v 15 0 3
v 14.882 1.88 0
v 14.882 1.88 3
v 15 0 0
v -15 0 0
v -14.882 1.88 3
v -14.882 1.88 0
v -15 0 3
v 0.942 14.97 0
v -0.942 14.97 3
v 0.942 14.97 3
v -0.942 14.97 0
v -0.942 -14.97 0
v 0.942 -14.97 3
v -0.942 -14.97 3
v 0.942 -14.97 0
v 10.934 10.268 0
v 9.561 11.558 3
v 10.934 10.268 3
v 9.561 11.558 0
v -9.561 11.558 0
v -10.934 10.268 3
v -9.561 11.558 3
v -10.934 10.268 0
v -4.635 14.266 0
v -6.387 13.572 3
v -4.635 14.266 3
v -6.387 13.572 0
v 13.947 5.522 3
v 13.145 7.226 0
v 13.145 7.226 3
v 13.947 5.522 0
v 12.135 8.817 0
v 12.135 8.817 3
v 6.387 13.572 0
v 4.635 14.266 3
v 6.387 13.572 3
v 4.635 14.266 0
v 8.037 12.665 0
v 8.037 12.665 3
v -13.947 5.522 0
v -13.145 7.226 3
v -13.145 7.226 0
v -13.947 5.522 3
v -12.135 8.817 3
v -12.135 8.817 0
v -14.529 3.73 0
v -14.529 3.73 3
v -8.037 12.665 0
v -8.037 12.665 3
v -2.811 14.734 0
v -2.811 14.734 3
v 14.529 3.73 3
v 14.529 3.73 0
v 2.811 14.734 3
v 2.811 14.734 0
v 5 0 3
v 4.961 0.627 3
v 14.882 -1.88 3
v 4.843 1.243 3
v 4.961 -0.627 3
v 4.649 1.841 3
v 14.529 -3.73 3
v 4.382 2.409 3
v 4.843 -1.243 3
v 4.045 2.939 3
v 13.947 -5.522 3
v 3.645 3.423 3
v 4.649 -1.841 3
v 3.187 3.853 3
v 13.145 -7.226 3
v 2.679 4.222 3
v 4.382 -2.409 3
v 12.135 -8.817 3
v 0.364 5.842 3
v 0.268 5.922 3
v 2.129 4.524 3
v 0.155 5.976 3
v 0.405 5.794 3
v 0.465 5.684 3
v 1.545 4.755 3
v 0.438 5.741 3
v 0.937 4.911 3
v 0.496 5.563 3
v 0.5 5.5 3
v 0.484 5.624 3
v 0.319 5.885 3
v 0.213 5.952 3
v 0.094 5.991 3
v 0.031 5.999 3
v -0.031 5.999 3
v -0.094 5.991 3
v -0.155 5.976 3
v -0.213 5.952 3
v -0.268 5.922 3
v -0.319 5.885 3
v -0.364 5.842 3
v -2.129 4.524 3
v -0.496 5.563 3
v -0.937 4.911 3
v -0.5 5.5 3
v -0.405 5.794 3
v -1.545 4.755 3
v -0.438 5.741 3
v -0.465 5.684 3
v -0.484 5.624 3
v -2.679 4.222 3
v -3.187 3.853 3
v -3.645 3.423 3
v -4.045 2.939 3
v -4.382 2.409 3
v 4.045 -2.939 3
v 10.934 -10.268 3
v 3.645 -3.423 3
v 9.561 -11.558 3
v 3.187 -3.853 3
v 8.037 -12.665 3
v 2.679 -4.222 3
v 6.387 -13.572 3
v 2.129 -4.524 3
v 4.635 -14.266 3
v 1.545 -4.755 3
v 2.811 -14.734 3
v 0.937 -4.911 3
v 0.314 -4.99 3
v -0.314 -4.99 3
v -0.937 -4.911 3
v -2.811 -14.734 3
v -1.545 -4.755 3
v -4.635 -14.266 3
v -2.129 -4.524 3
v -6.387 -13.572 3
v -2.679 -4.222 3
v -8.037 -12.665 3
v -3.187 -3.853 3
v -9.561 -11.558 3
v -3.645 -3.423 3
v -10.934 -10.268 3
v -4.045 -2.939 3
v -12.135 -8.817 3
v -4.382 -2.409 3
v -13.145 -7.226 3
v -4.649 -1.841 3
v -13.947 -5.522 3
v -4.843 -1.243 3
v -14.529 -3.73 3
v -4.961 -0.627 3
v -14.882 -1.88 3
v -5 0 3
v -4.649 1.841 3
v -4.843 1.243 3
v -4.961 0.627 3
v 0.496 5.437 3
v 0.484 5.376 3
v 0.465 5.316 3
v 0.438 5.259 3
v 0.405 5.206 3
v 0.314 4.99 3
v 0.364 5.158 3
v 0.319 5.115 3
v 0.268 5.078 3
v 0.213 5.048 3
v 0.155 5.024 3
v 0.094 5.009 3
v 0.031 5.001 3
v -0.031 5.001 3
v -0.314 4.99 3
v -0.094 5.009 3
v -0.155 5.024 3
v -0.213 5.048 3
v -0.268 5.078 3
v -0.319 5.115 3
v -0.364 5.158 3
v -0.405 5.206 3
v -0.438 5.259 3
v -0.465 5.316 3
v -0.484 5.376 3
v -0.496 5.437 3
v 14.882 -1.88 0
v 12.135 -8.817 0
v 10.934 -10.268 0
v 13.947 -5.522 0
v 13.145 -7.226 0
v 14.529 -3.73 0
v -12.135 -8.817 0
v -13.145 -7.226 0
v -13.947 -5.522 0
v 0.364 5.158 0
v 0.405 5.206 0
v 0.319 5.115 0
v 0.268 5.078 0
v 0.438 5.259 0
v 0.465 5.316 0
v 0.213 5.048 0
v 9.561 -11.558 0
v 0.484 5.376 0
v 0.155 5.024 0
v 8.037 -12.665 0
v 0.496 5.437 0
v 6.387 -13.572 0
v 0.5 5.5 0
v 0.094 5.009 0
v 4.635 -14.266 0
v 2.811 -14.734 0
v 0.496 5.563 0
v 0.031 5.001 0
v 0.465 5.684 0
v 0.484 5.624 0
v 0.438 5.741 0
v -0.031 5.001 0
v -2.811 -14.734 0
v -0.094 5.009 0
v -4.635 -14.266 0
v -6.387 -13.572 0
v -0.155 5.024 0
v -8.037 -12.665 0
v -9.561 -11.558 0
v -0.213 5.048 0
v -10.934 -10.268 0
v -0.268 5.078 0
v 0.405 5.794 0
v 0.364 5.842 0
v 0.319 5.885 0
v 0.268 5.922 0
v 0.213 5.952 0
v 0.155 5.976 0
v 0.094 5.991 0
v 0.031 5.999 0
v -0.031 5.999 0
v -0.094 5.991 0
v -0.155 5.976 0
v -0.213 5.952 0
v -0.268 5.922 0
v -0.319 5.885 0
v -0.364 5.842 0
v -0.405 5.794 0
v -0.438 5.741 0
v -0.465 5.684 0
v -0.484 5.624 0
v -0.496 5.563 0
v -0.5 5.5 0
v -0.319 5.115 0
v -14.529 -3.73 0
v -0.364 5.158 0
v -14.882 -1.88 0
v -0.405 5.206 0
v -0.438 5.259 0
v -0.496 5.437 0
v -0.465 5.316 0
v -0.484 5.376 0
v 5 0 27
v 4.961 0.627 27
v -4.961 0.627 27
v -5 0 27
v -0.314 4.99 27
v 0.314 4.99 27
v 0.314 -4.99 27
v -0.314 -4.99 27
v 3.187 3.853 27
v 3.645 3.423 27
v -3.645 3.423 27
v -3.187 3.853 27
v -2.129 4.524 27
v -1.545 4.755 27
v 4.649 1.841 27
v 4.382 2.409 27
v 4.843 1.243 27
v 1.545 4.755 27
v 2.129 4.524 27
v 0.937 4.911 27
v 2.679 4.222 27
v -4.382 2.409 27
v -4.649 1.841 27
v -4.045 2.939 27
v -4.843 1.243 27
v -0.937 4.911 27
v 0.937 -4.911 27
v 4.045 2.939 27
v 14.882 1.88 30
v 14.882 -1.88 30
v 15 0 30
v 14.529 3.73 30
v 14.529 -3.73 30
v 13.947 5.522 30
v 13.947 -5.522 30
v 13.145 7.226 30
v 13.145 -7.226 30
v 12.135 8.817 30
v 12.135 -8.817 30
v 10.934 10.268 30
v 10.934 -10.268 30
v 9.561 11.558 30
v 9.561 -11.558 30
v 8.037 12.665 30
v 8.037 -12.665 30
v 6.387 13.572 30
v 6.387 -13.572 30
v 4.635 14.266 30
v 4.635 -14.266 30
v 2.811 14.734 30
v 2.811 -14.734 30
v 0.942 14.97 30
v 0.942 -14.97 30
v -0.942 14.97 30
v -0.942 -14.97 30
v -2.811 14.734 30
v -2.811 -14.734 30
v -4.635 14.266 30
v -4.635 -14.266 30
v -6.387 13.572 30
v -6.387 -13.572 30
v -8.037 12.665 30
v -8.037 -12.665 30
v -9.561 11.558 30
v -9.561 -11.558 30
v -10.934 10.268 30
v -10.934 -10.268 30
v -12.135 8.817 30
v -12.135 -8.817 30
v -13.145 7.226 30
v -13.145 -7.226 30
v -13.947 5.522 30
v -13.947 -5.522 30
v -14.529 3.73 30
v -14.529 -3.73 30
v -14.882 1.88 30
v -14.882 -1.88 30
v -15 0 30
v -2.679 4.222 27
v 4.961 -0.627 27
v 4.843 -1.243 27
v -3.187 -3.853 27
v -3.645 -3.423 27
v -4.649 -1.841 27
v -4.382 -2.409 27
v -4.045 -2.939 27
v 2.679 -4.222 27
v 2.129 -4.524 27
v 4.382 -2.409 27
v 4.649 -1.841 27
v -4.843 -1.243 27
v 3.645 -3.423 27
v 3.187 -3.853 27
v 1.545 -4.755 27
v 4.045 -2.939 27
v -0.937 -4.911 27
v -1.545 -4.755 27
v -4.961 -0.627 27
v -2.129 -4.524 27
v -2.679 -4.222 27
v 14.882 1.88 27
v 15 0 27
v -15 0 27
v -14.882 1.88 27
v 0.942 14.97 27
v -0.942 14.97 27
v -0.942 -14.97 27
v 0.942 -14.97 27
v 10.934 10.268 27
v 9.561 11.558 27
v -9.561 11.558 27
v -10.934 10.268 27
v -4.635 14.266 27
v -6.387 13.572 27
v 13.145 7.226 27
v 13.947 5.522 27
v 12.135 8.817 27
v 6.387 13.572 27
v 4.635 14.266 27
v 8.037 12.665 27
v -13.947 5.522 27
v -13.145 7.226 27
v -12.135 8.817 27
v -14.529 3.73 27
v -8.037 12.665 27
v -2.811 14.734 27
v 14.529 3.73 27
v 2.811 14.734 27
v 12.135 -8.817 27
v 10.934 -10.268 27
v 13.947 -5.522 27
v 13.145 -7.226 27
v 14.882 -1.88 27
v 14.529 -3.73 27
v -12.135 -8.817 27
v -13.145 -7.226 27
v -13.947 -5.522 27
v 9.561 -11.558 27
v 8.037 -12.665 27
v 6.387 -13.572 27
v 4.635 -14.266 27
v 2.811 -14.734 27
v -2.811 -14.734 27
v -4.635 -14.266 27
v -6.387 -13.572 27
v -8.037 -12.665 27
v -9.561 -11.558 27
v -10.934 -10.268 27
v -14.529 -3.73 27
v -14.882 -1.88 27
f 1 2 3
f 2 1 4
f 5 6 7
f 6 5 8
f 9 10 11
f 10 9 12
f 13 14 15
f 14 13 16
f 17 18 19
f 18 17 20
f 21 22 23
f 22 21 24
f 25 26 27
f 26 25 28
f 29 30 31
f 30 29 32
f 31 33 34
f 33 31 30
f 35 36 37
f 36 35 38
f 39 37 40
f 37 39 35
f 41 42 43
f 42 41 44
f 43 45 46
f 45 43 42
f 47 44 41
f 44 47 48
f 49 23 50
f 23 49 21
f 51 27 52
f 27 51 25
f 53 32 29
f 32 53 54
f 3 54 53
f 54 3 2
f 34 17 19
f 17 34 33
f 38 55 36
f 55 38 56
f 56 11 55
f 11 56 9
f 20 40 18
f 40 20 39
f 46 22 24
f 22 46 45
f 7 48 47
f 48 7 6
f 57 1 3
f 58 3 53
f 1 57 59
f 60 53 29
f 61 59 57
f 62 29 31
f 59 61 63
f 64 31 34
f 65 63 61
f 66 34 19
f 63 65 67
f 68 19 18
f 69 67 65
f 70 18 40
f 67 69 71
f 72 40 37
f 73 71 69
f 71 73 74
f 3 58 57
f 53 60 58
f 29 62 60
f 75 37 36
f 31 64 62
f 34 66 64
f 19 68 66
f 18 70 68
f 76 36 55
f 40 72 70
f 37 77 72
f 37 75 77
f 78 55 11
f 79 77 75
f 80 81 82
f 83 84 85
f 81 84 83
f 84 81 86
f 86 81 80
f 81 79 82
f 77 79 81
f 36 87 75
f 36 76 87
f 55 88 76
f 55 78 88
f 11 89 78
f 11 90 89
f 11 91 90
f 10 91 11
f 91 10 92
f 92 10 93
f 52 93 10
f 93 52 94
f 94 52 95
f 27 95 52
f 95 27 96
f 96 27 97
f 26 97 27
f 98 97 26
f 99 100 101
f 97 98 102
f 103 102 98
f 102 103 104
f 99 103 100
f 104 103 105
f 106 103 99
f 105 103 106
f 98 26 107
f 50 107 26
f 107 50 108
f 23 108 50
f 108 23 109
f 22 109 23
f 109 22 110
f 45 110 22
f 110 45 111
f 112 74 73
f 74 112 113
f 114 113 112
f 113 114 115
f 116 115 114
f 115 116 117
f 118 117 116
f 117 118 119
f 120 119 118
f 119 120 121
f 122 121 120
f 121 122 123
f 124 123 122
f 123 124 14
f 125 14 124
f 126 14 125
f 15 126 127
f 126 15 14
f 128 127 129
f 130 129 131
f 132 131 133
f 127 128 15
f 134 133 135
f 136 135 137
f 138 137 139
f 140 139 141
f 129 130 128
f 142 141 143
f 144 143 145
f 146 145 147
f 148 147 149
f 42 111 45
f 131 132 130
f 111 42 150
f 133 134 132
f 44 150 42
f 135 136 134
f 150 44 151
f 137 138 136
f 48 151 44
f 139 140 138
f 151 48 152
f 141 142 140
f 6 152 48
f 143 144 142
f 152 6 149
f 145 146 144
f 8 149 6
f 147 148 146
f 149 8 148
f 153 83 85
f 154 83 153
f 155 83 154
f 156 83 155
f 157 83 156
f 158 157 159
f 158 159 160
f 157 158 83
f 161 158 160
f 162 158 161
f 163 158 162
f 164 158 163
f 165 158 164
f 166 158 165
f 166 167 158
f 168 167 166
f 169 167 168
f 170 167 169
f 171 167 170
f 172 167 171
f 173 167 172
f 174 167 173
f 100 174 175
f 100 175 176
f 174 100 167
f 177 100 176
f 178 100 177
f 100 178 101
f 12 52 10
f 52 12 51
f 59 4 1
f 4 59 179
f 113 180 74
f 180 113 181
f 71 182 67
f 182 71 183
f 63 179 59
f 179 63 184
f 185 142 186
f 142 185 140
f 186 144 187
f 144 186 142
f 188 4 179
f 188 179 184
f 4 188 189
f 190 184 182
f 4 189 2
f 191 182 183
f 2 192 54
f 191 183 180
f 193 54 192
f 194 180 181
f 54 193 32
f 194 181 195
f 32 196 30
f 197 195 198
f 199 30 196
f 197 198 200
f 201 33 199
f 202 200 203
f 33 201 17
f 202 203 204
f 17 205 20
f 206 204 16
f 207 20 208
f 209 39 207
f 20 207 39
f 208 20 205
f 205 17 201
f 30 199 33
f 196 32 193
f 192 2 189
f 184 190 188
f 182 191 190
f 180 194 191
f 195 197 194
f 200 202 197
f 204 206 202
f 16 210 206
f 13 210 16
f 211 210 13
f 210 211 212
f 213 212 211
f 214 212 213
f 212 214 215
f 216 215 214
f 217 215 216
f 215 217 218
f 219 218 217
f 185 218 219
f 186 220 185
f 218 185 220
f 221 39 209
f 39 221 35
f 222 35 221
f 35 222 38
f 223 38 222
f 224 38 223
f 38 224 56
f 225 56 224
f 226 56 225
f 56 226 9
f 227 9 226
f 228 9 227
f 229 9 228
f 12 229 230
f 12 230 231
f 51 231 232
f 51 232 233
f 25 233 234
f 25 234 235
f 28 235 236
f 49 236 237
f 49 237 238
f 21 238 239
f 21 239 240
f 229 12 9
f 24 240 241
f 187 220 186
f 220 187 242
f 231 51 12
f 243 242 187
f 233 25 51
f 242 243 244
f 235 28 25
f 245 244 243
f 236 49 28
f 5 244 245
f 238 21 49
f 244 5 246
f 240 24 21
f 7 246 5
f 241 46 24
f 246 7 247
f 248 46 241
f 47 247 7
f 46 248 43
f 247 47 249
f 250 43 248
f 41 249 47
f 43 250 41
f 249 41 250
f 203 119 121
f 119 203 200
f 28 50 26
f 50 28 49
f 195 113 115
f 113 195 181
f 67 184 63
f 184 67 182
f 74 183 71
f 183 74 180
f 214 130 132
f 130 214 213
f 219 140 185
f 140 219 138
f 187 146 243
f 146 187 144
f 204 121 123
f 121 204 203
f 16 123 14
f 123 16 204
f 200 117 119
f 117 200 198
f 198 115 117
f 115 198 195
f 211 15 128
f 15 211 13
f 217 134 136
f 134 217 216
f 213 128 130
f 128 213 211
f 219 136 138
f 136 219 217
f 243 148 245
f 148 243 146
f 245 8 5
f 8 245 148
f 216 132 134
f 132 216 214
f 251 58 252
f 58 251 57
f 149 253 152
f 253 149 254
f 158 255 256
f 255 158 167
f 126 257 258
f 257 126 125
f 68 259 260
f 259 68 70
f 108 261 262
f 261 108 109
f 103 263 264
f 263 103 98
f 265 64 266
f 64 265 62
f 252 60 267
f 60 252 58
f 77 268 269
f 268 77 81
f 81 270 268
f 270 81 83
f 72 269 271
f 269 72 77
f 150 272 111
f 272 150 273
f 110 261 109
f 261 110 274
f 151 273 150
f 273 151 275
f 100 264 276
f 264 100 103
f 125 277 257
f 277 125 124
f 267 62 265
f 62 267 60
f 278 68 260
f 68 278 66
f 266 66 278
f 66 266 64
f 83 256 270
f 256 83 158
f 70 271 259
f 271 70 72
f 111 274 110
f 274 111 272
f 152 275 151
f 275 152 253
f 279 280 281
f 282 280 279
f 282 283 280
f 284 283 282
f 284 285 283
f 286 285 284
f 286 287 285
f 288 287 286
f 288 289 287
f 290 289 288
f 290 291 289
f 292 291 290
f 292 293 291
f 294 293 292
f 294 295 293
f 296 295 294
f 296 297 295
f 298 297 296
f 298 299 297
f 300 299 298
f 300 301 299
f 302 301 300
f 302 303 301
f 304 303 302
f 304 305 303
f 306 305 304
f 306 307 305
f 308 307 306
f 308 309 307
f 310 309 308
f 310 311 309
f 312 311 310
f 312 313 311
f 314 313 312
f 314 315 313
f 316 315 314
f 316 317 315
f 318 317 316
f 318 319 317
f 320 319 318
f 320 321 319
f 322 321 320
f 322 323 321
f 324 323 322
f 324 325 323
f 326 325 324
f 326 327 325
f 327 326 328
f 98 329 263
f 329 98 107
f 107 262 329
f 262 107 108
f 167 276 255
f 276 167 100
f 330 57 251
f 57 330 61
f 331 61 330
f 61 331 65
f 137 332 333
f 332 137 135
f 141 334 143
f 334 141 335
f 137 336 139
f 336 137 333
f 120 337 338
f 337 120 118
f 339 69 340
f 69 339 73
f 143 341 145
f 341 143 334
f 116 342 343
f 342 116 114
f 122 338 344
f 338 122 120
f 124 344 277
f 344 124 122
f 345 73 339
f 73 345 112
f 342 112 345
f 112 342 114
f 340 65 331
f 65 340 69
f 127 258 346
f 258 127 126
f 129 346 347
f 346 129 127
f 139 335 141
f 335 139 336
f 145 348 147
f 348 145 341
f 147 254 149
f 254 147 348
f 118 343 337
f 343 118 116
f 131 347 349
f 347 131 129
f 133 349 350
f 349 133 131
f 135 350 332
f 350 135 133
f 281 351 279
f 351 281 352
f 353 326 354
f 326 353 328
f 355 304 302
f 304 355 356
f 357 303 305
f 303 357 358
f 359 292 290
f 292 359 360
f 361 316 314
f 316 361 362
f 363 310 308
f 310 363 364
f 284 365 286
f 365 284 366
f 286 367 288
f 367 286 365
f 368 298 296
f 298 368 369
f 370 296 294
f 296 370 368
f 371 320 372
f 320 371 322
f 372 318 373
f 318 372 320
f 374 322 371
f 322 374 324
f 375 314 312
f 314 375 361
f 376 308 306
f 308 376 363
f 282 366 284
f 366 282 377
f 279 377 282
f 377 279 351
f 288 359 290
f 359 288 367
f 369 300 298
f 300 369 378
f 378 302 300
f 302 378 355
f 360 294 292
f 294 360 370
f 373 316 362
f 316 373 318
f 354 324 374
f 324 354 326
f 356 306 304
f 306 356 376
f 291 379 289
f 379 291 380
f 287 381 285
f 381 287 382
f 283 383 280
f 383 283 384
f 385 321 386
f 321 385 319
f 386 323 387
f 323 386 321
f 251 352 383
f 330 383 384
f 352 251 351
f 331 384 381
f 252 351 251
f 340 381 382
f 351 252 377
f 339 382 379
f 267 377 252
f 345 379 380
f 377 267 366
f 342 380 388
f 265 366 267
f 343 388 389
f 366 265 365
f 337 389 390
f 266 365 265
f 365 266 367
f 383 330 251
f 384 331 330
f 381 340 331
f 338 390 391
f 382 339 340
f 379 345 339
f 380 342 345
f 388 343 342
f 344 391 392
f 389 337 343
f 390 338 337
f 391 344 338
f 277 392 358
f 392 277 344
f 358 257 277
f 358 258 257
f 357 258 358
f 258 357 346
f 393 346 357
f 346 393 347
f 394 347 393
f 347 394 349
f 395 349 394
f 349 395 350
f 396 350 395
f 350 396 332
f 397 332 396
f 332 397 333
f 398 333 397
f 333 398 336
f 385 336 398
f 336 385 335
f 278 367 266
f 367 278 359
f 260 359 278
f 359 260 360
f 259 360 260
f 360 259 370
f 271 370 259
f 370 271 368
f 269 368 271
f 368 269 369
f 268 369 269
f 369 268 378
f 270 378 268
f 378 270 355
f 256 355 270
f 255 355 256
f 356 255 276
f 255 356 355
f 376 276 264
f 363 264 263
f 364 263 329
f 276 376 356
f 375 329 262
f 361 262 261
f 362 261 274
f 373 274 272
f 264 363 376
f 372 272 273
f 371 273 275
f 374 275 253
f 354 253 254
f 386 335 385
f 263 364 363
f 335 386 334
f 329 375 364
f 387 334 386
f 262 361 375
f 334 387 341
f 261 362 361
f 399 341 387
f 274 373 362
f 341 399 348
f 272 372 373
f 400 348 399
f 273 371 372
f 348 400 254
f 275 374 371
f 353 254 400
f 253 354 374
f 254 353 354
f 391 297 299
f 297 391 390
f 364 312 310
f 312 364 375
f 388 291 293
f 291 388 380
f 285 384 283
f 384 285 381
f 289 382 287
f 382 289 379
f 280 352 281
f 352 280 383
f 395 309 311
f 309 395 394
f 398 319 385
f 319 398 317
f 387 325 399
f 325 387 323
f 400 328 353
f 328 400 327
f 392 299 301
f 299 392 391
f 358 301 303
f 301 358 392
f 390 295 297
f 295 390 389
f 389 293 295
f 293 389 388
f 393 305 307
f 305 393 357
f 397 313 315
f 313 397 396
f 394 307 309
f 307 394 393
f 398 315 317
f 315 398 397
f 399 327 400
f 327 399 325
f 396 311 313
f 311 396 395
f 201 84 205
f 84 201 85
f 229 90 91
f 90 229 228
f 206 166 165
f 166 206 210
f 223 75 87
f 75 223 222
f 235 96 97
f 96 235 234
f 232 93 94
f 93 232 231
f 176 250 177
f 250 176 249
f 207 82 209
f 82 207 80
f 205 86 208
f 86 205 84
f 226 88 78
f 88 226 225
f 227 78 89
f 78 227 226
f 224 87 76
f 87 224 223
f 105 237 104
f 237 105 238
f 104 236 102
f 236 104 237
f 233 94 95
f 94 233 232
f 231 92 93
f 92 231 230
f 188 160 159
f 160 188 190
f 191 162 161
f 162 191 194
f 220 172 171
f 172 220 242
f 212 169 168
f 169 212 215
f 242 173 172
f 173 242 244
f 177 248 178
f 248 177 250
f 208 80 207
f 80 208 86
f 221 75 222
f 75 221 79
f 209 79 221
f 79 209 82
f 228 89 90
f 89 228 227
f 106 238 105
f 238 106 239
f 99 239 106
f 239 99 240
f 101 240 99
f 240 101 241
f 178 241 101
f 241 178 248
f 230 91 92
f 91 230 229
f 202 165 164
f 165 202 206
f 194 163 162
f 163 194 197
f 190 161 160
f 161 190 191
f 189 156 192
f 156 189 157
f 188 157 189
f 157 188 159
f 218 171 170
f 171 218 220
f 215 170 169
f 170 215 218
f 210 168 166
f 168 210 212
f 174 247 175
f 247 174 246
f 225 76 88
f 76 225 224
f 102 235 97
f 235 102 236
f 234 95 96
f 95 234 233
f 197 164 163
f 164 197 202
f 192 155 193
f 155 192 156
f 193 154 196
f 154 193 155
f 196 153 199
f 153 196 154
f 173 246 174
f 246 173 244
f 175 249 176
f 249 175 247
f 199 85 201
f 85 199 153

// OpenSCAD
$fn=50;
difference() {
    union() {
        cylinder(3,30/2,30/2);
        cylinder(30,10/2,10/2);
        translate([0,0,27])cylinder(3,30/2,30/2);
        
    }
    translate([0,5.5,0])cylinder(3,1/2,1/2);
}
